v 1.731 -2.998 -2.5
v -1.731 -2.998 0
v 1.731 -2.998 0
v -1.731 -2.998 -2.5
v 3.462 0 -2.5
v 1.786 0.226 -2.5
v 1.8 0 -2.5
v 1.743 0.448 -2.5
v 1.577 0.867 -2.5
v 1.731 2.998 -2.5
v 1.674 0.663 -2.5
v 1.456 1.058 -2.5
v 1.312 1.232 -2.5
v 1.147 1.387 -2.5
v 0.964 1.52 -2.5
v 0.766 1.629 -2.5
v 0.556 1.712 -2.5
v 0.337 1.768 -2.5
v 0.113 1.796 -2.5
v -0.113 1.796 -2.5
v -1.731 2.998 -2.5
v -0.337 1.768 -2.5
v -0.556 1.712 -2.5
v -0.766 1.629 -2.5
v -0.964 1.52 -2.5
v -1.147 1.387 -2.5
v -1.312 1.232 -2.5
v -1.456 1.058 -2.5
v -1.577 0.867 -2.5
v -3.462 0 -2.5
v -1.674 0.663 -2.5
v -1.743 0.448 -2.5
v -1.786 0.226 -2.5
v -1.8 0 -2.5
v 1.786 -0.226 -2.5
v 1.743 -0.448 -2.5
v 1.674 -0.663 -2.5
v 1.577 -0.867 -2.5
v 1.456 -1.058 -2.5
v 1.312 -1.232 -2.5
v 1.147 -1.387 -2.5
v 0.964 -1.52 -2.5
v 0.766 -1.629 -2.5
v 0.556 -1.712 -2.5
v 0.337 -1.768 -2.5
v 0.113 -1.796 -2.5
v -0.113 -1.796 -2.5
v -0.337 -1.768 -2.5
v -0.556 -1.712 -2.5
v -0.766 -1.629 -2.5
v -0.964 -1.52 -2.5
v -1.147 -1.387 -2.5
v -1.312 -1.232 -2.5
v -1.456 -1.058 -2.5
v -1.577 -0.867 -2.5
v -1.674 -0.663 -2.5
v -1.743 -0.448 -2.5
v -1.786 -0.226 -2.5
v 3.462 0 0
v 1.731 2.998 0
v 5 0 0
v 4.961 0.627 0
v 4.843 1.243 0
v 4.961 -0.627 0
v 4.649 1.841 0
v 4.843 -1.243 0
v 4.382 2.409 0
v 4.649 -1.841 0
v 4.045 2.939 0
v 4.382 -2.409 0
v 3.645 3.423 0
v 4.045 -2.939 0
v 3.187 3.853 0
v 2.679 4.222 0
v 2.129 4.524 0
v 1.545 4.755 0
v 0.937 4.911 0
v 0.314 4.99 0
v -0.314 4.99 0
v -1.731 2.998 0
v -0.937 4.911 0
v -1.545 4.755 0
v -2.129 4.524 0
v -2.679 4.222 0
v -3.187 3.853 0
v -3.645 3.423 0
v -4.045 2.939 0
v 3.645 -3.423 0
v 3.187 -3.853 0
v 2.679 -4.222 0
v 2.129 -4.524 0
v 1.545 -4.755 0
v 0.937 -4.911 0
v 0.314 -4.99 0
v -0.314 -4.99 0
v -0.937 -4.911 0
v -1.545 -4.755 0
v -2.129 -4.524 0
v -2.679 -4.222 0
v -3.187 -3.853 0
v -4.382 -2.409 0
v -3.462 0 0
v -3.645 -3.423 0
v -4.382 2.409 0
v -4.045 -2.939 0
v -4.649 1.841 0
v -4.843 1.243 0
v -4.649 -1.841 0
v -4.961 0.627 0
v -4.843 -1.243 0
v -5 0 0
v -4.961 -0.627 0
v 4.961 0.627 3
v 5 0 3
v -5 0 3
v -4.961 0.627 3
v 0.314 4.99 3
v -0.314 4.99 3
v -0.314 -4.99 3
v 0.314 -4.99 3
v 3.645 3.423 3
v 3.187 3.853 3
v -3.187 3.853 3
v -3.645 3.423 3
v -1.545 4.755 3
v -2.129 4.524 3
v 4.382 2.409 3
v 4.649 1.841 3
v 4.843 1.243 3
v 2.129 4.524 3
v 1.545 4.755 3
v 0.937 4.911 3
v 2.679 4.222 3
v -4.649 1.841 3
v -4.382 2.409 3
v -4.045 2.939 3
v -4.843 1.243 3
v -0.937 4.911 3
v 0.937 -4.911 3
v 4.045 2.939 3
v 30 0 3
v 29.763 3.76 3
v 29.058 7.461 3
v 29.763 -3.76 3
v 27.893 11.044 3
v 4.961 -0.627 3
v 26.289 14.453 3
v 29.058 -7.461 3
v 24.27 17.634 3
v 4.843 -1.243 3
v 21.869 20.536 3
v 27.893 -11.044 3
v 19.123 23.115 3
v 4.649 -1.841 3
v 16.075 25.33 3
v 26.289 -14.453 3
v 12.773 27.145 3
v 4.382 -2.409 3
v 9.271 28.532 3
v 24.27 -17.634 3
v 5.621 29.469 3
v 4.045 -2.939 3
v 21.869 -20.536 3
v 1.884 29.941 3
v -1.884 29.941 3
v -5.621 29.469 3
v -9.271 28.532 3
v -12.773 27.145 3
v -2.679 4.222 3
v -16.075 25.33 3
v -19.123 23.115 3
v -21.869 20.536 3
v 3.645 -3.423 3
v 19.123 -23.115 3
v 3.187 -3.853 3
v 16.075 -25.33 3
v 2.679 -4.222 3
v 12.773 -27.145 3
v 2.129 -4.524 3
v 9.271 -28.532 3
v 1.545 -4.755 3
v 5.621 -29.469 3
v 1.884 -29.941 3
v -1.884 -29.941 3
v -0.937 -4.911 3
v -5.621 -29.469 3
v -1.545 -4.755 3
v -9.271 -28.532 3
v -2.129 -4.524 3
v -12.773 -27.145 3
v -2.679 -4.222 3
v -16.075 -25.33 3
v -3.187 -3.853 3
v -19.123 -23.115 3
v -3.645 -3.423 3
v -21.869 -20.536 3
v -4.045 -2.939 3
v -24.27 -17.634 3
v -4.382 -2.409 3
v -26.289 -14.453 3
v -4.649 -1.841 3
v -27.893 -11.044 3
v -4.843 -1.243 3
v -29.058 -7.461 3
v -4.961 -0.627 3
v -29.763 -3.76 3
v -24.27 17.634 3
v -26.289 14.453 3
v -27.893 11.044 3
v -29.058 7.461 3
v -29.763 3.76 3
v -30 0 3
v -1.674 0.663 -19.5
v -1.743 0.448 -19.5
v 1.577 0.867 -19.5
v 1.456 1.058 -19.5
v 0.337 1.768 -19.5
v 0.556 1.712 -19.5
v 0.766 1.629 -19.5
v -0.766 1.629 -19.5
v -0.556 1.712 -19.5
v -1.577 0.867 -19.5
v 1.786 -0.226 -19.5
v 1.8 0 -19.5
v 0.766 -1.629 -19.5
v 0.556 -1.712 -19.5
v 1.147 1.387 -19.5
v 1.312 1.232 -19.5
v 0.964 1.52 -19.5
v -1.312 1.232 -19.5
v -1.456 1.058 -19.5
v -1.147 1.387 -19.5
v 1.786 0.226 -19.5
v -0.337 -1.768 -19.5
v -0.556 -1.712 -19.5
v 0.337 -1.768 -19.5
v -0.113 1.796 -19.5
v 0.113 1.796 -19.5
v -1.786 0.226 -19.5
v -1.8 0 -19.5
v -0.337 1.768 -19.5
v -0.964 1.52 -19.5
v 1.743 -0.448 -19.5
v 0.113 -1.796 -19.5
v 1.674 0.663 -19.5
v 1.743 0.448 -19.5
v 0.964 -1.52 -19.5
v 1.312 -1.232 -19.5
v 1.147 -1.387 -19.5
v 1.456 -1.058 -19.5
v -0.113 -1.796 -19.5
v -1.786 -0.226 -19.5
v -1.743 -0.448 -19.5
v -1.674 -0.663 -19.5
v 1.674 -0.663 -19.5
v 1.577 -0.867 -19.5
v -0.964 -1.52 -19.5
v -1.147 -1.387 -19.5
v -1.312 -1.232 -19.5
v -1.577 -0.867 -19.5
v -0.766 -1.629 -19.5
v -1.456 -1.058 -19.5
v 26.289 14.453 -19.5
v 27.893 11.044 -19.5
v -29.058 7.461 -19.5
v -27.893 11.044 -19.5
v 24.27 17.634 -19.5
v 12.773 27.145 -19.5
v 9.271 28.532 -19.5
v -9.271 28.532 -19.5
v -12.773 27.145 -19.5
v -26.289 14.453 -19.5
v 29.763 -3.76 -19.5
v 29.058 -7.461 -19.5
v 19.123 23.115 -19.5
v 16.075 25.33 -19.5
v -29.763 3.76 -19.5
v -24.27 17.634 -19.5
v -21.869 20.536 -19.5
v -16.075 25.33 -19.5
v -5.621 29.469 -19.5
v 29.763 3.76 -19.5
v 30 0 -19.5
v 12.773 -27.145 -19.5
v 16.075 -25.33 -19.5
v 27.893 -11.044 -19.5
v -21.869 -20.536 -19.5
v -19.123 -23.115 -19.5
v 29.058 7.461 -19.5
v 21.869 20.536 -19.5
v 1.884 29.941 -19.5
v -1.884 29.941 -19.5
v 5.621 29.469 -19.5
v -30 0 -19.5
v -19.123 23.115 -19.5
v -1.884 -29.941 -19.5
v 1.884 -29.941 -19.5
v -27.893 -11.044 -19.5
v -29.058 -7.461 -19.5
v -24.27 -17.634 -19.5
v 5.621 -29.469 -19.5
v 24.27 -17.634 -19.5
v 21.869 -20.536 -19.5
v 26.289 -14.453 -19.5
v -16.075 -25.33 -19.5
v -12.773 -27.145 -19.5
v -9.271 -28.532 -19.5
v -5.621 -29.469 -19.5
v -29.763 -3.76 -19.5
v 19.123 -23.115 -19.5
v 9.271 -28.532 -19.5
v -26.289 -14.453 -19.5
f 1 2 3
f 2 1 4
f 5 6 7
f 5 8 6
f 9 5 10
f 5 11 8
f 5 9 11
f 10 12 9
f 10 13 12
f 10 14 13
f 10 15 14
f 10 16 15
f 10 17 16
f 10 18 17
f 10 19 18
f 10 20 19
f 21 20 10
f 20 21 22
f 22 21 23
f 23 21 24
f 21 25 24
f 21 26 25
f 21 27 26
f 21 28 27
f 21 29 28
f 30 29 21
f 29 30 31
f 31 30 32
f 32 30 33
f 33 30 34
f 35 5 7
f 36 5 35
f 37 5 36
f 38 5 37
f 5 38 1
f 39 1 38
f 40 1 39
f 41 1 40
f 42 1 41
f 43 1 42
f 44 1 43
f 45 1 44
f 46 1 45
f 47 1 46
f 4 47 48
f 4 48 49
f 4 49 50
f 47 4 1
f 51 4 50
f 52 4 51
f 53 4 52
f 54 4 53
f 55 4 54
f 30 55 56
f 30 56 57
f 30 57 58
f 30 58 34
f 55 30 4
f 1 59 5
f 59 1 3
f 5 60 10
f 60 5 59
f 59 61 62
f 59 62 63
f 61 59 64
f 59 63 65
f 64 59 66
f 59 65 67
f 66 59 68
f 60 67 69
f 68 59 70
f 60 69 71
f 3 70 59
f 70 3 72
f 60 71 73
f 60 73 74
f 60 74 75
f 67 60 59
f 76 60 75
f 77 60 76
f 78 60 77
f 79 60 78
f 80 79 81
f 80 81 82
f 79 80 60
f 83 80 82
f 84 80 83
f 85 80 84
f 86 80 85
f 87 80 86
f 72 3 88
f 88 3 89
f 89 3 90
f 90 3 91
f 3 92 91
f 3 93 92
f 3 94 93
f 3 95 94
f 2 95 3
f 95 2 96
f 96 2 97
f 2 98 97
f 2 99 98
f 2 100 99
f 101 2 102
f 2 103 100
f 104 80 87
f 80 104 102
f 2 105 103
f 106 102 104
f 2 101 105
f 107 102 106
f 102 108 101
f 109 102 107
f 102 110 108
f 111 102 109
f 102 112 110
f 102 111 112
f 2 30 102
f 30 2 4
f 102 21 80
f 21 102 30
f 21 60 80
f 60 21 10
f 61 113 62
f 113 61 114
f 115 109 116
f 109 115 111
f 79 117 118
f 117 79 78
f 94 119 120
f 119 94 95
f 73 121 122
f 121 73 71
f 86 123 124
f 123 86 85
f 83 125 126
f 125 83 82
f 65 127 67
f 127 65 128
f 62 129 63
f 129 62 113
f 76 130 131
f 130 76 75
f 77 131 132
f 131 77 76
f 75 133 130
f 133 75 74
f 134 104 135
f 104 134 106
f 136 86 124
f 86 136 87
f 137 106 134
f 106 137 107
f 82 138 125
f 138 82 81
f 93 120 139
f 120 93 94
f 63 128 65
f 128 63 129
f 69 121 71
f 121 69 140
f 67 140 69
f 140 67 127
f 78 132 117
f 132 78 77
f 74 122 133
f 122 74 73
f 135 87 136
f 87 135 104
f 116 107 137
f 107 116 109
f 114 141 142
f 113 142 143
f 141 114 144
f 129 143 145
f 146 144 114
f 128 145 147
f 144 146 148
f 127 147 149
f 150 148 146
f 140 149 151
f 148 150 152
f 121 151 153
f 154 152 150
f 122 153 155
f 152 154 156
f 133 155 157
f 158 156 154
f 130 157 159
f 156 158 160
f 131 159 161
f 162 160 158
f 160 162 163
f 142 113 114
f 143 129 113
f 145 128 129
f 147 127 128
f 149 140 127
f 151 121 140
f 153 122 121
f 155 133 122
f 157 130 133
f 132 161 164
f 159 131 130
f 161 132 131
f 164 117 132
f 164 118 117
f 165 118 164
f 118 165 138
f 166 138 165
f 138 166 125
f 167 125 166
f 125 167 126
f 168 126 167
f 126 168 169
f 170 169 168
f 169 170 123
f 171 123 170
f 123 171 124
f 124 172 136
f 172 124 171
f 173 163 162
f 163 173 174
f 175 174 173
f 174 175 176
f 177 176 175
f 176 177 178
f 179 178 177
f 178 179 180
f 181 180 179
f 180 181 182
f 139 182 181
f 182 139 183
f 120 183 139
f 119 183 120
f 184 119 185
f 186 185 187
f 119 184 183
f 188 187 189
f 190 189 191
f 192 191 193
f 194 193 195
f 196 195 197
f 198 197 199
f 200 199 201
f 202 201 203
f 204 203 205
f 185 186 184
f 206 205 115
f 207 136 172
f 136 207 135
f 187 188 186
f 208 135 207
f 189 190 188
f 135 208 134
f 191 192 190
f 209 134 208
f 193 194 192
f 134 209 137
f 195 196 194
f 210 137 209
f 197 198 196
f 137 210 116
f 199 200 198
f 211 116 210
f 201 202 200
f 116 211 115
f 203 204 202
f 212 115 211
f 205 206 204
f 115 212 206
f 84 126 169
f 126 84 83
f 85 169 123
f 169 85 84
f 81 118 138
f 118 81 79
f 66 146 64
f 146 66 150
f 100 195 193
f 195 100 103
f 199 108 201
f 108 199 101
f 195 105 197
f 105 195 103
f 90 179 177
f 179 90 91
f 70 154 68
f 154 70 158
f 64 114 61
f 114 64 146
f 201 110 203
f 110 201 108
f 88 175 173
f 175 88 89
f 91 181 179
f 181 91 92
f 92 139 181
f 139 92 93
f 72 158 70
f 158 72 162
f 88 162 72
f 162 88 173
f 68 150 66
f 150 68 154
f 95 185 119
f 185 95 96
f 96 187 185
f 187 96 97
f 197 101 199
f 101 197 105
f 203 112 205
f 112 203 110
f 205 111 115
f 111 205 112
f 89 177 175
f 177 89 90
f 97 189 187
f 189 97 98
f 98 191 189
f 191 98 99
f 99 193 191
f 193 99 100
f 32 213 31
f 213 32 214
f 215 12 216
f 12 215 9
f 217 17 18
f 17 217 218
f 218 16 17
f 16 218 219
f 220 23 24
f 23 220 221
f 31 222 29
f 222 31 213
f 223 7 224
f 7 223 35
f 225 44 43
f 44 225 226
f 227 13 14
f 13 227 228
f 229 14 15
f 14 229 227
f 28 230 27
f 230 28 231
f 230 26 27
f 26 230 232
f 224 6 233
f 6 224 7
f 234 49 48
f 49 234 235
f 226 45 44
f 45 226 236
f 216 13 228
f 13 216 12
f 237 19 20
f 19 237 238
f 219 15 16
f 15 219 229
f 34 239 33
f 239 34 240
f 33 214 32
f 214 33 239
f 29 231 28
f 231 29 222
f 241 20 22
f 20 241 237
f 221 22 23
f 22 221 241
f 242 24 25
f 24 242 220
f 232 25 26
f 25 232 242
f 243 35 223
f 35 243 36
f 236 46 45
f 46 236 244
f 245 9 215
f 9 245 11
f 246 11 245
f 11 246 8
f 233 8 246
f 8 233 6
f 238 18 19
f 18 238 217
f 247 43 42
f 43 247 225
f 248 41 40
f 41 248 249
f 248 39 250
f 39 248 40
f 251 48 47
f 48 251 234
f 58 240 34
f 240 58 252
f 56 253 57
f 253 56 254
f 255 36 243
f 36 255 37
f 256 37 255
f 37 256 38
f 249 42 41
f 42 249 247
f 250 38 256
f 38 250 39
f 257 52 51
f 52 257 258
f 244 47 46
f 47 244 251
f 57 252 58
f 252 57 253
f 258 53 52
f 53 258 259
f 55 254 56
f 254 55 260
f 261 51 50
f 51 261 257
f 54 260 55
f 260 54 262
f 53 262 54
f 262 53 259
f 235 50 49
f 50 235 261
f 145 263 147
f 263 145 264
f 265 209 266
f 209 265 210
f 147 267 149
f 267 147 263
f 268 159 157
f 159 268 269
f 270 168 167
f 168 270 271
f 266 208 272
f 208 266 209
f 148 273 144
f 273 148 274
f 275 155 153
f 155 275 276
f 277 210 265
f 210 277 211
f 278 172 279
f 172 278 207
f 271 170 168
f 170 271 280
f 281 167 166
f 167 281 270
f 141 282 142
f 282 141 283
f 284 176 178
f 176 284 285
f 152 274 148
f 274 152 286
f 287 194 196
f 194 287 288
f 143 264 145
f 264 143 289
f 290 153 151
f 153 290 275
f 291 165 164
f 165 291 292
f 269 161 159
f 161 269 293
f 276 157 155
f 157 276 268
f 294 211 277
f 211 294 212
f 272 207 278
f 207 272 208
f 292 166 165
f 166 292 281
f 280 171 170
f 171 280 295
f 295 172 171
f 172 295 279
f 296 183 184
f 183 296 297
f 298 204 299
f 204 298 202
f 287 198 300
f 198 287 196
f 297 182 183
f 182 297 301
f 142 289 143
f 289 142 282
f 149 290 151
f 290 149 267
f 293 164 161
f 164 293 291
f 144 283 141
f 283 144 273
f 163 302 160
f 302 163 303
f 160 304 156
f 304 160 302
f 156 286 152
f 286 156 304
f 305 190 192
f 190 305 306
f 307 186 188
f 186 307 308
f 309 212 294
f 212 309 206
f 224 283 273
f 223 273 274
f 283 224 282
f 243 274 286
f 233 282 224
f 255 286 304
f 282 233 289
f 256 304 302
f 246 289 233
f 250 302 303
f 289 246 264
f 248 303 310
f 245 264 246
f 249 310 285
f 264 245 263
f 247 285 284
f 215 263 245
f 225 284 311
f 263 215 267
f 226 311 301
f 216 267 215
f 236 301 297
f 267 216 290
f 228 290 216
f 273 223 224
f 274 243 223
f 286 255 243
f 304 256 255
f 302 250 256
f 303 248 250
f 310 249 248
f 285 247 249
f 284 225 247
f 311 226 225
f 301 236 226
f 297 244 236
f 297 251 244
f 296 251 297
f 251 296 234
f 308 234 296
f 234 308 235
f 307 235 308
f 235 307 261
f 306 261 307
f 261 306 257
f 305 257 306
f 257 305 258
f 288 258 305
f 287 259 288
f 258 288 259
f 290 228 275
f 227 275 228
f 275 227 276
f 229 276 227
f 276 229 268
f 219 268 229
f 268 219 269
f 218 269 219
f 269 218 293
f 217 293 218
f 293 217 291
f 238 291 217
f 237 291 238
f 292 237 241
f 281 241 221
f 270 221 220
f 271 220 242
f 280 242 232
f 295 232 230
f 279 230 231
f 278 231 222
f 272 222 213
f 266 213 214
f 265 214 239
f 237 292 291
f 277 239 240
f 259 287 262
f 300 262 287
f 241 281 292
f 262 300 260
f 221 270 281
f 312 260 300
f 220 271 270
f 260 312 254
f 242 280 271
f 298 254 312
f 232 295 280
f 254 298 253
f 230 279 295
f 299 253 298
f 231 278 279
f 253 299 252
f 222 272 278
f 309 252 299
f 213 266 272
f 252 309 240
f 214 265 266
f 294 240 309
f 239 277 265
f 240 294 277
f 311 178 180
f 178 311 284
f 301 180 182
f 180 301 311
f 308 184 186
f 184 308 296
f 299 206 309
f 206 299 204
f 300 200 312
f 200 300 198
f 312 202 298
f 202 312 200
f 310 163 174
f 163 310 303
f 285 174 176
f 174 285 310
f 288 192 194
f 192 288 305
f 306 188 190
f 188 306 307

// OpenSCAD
$fn = 50;

difference() {
	union() {
		translate(v = [0, 0, -19.5]) {
			cylinder(h = 22.5, r = 30.0);
		}
	}
	union() {
		translate(v = [0, 0, 0]) {
			rotate(a = [0, 0, 0]) {
				difference() {
					union() {
						translate(v = [0, 0, -2.5]) {
							linear_extrude(height = 2.5) {
								polygon(points = [[3.4619999999999997, 0.0], [1.7310000000000003, 2.9981799479017264], [-1.7309999999999992, 2.9981799479017264], [-3.4619999999999997, 4.2397272186481365e-16], [-1.7310000000000014, -2.998179947901726], [1.7309999999999977, -2.9981799479017277]]);
							}
						}
					}
					union();
				}
			}
		}
		#cylinder(h = 3, r = 5.0);
		#translate(v = [0, 0, -100.0]) {
			cylinder(h = 200, r = 1.8);
		}
	}
}
